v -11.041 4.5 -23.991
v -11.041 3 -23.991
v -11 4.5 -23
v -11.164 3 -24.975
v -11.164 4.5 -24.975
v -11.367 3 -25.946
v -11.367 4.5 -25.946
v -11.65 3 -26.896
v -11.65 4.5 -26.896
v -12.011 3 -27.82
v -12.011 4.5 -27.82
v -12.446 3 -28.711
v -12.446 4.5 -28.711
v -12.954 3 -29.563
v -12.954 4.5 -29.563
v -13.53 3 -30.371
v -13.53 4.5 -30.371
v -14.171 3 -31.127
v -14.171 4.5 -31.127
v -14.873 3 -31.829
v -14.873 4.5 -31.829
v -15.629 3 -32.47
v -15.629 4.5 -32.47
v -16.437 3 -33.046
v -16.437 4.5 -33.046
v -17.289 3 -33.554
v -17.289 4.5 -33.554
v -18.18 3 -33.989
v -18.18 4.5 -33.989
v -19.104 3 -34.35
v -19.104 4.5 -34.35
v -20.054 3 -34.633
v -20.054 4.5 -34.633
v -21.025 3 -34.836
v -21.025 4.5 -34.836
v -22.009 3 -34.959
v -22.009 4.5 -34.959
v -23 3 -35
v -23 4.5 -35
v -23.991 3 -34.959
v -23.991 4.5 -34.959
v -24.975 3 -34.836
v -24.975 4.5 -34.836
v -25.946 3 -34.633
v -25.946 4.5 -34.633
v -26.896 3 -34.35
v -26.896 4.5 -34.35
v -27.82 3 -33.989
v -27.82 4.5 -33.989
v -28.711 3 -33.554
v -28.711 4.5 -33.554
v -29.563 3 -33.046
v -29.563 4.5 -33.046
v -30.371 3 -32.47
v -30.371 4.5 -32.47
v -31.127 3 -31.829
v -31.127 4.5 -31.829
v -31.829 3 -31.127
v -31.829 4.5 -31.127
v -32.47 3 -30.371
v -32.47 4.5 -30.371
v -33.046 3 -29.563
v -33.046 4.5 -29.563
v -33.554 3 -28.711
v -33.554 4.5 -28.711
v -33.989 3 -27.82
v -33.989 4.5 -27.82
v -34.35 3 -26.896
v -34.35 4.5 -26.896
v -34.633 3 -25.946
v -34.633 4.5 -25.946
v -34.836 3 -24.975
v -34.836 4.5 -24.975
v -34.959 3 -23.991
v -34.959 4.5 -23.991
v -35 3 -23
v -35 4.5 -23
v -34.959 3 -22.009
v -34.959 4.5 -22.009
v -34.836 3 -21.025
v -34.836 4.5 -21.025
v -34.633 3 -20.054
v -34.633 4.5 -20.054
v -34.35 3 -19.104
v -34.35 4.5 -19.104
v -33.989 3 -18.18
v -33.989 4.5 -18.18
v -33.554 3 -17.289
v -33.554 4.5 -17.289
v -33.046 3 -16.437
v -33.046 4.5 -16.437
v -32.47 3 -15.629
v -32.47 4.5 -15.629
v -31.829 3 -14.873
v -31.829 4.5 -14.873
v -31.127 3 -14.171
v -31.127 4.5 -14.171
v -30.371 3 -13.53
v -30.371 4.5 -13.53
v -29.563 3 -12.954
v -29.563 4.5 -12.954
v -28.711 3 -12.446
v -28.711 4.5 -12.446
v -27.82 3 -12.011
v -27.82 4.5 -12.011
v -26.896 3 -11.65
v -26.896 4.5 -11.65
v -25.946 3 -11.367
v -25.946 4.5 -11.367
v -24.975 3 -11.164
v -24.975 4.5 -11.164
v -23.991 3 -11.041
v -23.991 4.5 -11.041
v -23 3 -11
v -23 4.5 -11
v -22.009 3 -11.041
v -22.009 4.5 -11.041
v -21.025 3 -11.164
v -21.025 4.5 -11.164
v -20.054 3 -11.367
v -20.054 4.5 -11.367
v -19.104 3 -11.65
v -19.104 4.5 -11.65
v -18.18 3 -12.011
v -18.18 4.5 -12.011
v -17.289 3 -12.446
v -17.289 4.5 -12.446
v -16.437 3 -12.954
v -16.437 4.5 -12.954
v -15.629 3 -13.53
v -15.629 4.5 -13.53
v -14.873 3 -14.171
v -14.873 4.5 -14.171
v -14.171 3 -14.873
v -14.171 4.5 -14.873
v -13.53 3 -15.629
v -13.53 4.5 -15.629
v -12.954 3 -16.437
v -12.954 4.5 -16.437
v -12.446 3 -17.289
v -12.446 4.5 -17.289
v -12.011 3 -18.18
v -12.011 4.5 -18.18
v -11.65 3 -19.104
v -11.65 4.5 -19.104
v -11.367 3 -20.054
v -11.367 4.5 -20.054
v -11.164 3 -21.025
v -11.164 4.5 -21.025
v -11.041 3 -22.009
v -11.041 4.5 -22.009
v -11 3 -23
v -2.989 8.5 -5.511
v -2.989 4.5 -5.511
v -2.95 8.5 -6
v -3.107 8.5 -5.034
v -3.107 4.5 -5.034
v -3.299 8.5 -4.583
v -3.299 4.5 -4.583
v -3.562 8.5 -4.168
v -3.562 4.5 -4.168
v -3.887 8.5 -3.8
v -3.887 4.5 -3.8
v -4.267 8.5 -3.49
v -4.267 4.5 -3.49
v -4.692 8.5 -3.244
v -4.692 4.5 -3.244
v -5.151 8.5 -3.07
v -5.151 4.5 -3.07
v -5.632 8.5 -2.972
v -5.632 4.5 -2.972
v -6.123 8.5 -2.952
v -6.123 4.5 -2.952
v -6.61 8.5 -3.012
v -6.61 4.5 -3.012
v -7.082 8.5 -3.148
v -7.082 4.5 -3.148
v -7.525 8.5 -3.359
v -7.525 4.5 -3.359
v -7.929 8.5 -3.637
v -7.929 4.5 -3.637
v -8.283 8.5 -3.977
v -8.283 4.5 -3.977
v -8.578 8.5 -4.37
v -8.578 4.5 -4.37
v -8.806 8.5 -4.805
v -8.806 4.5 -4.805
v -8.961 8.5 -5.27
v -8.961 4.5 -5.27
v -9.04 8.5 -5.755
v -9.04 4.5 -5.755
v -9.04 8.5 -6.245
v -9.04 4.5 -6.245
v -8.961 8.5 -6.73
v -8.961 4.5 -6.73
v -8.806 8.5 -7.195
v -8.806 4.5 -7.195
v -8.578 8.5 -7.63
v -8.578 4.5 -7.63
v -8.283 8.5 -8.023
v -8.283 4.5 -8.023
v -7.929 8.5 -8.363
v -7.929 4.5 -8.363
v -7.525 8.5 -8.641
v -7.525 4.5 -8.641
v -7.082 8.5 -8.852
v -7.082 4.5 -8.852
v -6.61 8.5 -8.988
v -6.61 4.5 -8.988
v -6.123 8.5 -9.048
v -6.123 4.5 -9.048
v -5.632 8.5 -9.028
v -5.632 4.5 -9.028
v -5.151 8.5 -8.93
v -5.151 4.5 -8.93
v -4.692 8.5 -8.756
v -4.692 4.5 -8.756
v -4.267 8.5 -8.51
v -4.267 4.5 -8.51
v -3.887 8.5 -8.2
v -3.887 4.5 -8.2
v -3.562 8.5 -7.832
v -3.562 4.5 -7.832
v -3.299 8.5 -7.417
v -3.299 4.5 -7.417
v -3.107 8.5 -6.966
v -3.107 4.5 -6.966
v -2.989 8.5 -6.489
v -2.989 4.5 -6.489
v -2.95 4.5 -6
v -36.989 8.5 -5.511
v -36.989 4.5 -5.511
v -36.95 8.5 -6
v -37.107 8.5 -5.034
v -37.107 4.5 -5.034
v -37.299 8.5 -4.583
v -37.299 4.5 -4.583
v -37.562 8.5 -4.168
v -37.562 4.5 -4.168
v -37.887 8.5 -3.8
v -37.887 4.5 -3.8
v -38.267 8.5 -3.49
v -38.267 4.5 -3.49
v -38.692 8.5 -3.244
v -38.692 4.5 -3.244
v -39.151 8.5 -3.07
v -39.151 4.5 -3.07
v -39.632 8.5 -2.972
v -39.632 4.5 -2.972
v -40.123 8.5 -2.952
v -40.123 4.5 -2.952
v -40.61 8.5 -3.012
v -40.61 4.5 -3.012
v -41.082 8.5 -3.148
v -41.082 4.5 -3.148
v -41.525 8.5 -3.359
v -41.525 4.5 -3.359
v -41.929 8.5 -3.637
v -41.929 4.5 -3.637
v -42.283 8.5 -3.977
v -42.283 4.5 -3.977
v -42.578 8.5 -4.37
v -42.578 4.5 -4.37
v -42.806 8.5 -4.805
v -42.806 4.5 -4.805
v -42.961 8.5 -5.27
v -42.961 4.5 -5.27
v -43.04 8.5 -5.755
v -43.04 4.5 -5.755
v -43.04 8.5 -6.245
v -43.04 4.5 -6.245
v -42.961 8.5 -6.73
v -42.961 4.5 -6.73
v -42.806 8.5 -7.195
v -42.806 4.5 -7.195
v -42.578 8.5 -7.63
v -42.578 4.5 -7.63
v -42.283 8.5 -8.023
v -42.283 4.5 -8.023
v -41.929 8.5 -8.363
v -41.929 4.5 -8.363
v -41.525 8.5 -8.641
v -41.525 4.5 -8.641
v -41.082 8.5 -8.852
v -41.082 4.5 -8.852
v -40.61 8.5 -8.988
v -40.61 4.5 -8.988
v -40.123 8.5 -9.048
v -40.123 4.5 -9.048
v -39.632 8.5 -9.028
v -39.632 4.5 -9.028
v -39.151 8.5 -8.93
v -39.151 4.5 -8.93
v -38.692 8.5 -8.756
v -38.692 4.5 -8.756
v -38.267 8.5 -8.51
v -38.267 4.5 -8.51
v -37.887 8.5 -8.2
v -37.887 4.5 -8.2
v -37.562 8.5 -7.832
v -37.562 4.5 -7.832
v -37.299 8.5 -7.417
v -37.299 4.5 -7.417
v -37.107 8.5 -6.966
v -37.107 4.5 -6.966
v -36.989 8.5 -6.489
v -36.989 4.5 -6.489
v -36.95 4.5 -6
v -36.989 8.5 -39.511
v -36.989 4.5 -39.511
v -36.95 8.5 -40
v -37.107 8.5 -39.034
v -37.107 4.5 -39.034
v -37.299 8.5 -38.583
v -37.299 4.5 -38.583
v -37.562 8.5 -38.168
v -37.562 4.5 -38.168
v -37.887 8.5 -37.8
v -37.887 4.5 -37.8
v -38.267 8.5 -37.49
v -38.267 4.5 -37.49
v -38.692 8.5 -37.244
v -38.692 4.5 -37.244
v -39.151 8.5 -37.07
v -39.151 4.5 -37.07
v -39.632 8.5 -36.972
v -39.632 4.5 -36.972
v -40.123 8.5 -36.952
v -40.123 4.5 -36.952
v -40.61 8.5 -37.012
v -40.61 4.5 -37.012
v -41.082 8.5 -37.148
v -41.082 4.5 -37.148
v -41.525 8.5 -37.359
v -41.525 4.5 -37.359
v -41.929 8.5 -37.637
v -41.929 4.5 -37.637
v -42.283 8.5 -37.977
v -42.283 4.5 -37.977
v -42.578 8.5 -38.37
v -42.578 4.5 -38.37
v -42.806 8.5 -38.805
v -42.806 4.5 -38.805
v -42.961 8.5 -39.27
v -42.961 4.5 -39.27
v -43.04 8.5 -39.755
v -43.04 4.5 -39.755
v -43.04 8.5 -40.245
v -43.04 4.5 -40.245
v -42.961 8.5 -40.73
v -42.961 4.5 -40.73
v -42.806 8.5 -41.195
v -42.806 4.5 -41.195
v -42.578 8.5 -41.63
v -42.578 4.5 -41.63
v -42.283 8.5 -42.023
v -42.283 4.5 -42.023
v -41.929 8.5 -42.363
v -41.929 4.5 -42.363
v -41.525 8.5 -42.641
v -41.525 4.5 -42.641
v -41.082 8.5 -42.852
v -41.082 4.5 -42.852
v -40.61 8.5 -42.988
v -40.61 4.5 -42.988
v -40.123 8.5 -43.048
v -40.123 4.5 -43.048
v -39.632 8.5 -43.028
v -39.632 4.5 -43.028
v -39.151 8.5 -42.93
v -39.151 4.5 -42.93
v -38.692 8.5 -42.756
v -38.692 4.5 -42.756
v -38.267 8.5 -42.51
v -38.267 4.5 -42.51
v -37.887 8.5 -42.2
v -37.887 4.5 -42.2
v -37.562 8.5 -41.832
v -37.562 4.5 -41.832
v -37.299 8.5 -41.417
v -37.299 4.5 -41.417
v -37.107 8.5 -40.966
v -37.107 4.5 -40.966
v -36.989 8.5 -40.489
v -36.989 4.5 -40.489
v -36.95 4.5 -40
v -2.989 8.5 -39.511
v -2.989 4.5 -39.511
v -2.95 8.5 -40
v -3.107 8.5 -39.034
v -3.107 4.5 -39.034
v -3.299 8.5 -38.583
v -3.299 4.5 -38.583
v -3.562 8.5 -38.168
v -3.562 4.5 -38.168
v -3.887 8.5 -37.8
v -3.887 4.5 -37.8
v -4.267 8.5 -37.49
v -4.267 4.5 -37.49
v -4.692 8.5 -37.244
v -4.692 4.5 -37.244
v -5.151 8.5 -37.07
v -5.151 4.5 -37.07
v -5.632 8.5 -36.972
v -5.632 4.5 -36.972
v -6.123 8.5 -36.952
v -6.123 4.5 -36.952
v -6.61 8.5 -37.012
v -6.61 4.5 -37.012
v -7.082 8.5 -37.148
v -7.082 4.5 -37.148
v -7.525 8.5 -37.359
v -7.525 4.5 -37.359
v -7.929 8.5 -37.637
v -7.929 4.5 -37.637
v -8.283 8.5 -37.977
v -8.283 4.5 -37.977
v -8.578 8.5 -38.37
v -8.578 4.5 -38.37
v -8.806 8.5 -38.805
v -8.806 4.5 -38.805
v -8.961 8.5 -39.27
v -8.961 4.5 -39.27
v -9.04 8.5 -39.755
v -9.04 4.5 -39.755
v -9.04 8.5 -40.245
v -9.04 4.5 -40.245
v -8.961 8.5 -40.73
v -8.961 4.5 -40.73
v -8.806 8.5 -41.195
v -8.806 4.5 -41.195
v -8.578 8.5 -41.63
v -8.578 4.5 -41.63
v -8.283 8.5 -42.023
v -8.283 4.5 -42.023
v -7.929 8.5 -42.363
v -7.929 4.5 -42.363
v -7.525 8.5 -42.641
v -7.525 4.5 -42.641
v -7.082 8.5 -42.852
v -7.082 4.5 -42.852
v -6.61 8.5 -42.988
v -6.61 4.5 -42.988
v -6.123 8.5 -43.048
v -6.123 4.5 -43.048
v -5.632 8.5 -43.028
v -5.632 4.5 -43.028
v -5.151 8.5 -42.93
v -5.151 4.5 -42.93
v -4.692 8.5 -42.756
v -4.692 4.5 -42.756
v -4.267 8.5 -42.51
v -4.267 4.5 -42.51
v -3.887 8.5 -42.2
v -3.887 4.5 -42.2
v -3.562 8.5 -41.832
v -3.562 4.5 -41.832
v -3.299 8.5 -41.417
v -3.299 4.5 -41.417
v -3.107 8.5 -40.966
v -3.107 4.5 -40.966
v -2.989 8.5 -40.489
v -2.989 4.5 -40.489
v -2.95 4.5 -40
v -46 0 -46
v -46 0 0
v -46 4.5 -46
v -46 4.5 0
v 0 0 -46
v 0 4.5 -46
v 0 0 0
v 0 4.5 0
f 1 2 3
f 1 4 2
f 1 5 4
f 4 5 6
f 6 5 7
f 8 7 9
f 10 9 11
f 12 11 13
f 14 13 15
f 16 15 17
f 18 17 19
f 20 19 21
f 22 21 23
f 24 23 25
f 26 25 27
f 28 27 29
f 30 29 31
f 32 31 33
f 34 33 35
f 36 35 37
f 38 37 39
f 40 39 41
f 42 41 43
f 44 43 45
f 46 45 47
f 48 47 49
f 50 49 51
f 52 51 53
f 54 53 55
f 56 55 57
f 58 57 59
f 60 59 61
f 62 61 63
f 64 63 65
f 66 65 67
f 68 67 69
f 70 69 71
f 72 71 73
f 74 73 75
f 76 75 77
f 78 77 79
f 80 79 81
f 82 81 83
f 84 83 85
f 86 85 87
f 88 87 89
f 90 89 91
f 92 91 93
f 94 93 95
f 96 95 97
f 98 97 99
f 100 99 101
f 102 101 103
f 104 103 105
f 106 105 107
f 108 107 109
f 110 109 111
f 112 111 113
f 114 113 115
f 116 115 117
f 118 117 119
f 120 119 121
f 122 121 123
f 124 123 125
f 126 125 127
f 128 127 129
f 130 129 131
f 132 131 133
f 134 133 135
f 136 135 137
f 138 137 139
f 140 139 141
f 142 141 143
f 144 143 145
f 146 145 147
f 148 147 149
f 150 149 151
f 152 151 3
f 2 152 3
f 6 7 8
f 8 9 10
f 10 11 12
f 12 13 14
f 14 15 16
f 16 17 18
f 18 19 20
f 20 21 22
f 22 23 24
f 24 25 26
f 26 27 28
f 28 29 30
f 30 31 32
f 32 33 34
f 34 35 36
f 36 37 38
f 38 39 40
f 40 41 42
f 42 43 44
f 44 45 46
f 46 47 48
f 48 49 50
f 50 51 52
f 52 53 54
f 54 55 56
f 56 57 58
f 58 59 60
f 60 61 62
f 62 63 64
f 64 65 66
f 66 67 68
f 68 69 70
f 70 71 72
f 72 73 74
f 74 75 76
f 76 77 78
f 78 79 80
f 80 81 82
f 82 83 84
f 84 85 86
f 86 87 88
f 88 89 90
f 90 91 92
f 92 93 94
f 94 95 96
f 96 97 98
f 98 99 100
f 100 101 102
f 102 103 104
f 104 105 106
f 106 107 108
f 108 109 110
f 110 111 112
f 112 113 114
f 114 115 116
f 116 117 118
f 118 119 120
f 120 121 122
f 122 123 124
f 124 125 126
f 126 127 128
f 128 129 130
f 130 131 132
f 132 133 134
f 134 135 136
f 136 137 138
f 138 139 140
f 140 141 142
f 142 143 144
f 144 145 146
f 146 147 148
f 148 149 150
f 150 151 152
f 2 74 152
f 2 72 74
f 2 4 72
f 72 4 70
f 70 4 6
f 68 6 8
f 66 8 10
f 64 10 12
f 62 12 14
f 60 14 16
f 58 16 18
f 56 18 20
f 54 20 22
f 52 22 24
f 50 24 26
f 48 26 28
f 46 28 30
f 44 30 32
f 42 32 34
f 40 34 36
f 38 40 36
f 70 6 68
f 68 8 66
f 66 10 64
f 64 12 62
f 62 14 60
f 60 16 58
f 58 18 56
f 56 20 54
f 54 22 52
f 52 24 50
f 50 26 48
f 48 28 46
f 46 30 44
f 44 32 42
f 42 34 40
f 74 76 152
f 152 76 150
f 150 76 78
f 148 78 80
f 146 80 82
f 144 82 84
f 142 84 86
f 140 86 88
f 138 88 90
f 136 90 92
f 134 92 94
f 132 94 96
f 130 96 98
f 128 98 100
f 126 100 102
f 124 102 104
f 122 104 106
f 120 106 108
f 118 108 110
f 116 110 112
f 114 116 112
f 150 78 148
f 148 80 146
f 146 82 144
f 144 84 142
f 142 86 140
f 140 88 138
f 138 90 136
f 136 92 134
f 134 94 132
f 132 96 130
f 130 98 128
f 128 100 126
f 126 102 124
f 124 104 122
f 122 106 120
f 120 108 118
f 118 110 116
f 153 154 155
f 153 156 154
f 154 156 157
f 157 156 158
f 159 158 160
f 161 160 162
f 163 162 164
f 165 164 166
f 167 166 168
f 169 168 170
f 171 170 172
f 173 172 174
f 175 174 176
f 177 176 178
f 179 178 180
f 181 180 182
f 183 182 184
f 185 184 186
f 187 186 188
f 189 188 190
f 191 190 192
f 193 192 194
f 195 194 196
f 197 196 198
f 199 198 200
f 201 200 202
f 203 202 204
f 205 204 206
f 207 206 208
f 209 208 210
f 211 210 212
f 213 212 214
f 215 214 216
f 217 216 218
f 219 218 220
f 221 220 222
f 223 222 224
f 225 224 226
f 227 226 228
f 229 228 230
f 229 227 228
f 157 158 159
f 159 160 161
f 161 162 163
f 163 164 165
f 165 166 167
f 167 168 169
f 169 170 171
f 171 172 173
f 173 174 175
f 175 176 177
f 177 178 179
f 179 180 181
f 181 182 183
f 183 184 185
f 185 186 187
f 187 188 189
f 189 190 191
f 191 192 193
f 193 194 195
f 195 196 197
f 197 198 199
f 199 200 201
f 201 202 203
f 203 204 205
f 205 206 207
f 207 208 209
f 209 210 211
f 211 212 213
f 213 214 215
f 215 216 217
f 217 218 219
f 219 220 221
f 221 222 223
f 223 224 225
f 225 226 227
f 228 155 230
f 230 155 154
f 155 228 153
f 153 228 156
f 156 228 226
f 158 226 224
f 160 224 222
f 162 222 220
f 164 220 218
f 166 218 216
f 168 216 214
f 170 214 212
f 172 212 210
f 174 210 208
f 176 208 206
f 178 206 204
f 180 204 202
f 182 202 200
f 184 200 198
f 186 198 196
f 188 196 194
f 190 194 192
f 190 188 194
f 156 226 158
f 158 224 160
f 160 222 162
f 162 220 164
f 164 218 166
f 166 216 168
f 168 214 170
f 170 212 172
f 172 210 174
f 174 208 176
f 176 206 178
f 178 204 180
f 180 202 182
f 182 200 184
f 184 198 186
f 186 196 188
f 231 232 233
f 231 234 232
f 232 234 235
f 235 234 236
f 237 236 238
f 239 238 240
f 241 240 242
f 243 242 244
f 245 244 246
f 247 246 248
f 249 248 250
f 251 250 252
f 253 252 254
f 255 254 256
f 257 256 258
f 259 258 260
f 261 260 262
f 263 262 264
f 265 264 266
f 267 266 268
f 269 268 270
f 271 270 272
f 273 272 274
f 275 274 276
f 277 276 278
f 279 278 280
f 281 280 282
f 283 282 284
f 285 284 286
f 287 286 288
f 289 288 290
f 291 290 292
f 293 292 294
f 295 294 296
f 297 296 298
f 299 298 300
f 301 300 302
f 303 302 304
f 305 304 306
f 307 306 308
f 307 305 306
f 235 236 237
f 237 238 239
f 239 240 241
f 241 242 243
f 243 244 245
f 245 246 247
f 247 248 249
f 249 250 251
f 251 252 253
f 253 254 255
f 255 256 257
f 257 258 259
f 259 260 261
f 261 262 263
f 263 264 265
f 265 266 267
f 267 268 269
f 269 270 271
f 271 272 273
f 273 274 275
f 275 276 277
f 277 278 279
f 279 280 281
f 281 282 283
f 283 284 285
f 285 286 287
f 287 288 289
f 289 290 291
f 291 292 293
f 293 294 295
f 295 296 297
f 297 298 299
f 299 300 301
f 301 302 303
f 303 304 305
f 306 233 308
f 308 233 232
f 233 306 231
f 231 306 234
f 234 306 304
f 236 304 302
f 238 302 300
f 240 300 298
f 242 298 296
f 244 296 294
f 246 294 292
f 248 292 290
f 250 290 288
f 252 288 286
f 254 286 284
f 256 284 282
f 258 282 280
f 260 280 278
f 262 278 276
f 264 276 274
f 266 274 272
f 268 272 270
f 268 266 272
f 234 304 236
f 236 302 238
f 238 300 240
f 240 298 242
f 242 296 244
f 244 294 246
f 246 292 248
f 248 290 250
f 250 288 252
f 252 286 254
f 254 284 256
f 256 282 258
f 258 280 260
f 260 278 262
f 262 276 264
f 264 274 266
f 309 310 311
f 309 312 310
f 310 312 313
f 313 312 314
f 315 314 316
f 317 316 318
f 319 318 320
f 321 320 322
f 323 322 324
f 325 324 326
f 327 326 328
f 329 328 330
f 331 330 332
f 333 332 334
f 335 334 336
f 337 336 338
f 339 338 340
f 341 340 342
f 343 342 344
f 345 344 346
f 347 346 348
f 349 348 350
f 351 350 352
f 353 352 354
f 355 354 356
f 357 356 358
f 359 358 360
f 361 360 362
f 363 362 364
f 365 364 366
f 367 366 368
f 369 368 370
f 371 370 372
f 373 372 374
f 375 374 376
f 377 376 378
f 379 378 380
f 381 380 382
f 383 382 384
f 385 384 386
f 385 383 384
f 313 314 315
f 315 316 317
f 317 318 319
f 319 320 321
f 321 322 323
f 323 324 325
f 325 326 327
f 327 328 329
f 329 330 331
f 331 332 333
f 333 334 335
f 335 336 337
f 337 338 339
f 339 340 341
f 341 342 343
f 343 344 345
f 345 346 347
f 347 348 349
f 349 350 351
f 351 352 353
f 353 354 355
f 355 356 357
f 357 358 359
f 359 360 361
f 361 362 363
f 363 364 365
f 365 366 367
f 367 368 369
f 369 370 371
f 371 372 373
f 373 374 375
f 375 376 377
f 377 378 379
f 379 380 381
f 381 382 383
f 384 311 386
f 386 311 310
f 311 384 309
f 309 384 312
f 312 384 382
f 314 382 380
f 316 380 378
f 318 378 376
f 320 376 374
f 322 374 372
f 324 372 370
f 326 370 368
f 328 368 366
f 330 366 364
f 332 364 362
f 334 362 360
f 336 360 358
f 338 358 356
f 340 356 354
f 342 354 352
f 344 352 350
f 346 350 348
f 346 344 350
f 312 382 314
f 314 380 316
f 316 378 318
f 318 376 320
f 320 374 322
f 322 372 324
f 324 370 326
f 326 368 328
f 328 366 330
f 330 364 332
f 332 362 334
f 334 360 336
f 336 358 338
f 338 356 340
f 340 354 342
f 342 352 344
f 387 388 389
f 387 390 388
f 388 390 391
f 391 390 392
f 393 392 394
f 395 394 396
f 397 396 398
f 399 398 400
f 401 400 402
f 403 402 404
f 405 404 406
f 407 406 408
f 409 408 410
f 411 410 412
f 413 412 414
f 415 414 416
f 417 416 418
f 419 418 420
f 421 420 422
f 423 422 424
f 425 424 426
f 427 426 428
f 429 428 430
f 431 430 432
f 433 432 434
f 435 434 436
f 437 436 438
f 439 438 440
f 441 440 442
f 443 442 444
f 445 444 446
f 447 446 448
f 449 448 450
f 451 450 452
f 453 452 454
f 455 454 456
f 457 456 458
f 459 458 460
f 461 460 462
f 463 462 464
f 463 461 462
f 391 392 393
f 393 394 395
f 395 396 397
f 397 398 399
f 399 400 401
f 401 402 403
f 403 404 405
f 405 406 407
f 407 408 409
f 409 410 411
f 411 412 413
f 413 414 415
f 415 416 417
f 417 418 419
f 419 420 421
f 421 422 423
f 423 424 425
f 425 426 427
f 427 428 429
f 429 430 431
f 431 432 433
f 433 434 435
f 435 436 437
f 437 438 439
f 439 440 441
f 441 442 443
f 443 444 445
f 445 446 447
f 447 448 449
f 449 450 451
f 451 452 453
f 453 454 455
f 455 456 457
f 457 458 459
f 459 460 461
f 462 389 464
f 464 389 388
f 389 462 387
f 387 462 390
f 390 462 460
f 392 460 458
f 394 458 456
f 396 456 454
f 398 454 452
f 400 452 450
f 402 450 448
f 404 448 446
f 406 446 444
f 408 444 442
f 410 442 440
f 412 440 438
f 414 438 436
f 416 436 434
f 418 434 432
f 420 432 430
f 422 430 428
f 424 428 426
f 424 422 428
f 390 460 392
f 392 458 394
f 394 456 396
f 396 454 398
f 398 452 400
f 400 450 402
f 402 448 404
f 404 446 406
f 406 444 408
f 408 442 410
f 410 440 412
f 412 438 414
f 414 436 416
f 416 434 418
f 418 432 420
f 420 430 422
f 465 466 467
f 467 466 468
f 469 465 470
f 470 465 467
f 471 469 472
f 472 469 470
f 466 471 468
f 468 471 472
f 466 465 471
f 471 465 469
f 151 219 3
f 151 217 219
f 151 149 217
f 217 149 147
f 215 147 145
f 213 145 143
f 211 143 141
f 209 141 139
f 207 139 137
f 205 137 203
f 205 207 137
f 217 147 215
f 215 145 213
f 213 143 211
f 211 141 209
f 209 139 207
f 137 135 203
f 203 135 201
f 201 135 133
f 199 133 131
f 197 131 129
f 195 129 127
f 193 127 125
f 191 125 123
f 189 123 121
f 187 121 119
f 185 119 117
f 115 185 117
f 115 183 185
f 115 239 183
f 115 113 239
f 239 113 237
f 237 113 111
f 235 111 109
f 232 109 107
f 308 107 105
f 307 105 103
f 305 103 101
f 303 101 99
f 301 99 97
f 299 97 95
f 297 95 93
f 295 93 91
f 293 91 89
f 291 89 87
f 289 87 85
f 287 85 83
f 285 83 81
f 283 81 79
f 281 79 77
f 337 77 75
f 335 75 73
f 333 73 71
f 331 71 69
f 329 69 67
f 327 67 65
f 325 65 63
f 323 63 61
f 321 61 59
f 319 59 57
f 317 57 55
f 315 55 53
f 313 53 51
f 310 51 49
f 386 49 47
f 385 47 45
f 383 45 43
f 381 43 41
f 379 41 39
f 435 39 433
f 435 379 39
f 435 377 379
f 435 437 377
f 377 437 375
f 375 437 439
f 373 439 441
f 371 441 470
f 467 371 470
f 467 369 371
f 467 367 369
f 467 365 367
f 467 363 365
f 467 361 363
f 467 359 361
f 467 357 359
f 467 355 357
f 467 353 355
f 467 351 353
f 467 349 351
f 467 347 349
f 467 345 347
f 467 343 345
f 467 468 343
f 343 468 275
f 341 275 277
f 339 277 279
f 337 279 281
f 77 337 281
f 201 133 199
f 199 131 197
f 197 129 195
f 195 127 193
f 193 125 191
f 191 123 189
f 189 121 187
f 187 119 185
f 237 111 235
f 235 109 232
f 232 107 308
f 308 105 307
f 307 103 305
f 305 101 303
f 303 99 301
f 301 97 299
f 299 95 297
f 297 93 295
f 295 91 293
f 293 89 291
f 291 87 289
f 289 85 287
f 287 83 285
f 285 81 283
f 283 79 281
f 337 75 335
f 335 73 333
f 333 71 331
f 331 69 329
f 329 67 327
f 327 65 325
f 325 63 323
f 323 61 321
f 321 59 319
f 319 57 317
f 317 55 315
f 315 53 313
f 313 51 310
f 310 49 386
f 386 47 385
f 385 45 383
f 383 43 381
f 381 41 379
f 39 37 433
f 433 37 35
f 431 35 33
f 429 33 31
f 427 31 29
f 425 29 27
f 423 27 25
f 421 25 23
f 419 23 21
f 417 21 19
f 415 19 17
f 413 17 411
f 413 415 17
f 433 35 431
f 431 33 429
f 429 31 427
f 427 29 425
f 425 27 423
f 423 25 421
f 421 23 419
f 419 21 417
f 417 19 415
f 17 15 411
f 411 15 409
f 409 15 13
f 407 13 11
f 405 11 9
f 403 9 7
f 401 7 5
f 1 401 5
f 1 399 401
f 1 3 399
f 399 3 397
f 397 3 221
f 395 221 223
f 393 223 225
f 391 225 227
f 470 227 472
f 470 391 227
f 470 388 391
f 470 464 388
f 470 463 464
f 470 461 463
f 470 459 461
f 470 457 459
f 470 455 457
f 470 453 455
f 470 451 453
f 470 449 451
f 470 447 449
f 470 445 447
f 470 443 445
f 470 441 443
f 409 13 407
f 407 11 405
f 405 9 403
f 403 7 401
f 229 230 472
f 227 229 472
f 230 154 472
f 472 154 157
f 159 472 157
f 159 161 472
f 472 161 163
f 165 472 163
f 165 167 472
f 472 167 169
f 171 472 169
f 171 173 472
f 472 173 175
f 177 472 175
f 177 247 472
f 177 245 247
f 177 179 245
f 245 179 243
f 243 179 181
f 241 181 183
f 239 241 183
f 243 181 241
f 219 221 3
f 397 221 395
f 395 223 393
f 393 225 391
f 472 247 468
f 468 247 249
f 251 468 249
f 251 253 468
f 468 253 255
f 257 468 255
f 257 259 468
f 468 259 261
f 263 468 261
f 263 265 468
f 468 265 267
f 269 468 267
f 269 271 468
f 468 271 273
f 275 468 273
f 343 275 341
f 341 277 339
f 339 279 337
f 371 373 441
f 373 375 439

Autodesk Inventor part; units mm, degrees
ref_plane "YZ Plane" through (0, 0, 0) normal (1, 0, 0) x (0, 1, 0)
ref_plane "XZ Plane" through (0, 0, 0) normal (0, 1, 0) x (-1, 0, 0)
ref_plane "XY Plane" through (0, 0, 0) normal (0, 0, 1) x (1, 0, 0)
sketch "Sketch1" plane through (0, 0, 0) normal (0, 1, 0) x (-1, 0, 0)
  line L0 (0, 0) -> (46, 0)
  line L1 (46, 0) -> (46, -46)
  line L2 (46, -46) -> (0, -46)
  line L3 (0, -46) -> (0, 0)
  dimension "d0" = 46
  dimension "d1" = 46
extrude "Extrusion1" add sketch "Sketch1" along normal blind 4.5
sketch "Sketch2" plane through (0, 4.5, 0) normal (0, 1, 0) x (1, 0, 0)
  circle A0 centre (-40, 6) radius 3.05
  line L0 (-46, 0) -> (-46, 46) projected
  line L1 (-46, 0) -> (0, 0) projected
  circle A1 centre (-40, 40) radius 3.05
  line L2 (0, 46) -> (-46, 46) projected
  circle A2 centre (-6, 6) radius 3.05
  line L3 (0, 0) -> (0, 46) projected
  circle A3 centre (-6, 40) radius 3.05
  dimension "d4" = 6.1
  dimension "d5" = 6
  dimension "d6" = 6
  dimension "d7" = 6.1
  dimension "d8" = 6
  dimension "d9" = 6
  dimension "d10" = 6.1
  dimension "d11" = 6
  dimension "d12" = 6
  dimension "d13" = 6.1
  dimension "d16" = 6
  dimension "d17" = 6
extrude "Extrusion2" add sketch "Sketch2" along normal blind 4 contours A0 | A1 | A2 | A3
sketch "Sketch3" plane through (0, 4.5, 0) normal (0, 1, 0) x (1, 0, 0)
  circle A0 centre (-23, 23) radius 12
  point P0 (0, 0)
  dimension "d18" = 24
hole "Hole1" at (-23, 4.5, -23) direction (0, -1, 0) diameter 24 depth 1.5
properties part number "RotatorTop"
